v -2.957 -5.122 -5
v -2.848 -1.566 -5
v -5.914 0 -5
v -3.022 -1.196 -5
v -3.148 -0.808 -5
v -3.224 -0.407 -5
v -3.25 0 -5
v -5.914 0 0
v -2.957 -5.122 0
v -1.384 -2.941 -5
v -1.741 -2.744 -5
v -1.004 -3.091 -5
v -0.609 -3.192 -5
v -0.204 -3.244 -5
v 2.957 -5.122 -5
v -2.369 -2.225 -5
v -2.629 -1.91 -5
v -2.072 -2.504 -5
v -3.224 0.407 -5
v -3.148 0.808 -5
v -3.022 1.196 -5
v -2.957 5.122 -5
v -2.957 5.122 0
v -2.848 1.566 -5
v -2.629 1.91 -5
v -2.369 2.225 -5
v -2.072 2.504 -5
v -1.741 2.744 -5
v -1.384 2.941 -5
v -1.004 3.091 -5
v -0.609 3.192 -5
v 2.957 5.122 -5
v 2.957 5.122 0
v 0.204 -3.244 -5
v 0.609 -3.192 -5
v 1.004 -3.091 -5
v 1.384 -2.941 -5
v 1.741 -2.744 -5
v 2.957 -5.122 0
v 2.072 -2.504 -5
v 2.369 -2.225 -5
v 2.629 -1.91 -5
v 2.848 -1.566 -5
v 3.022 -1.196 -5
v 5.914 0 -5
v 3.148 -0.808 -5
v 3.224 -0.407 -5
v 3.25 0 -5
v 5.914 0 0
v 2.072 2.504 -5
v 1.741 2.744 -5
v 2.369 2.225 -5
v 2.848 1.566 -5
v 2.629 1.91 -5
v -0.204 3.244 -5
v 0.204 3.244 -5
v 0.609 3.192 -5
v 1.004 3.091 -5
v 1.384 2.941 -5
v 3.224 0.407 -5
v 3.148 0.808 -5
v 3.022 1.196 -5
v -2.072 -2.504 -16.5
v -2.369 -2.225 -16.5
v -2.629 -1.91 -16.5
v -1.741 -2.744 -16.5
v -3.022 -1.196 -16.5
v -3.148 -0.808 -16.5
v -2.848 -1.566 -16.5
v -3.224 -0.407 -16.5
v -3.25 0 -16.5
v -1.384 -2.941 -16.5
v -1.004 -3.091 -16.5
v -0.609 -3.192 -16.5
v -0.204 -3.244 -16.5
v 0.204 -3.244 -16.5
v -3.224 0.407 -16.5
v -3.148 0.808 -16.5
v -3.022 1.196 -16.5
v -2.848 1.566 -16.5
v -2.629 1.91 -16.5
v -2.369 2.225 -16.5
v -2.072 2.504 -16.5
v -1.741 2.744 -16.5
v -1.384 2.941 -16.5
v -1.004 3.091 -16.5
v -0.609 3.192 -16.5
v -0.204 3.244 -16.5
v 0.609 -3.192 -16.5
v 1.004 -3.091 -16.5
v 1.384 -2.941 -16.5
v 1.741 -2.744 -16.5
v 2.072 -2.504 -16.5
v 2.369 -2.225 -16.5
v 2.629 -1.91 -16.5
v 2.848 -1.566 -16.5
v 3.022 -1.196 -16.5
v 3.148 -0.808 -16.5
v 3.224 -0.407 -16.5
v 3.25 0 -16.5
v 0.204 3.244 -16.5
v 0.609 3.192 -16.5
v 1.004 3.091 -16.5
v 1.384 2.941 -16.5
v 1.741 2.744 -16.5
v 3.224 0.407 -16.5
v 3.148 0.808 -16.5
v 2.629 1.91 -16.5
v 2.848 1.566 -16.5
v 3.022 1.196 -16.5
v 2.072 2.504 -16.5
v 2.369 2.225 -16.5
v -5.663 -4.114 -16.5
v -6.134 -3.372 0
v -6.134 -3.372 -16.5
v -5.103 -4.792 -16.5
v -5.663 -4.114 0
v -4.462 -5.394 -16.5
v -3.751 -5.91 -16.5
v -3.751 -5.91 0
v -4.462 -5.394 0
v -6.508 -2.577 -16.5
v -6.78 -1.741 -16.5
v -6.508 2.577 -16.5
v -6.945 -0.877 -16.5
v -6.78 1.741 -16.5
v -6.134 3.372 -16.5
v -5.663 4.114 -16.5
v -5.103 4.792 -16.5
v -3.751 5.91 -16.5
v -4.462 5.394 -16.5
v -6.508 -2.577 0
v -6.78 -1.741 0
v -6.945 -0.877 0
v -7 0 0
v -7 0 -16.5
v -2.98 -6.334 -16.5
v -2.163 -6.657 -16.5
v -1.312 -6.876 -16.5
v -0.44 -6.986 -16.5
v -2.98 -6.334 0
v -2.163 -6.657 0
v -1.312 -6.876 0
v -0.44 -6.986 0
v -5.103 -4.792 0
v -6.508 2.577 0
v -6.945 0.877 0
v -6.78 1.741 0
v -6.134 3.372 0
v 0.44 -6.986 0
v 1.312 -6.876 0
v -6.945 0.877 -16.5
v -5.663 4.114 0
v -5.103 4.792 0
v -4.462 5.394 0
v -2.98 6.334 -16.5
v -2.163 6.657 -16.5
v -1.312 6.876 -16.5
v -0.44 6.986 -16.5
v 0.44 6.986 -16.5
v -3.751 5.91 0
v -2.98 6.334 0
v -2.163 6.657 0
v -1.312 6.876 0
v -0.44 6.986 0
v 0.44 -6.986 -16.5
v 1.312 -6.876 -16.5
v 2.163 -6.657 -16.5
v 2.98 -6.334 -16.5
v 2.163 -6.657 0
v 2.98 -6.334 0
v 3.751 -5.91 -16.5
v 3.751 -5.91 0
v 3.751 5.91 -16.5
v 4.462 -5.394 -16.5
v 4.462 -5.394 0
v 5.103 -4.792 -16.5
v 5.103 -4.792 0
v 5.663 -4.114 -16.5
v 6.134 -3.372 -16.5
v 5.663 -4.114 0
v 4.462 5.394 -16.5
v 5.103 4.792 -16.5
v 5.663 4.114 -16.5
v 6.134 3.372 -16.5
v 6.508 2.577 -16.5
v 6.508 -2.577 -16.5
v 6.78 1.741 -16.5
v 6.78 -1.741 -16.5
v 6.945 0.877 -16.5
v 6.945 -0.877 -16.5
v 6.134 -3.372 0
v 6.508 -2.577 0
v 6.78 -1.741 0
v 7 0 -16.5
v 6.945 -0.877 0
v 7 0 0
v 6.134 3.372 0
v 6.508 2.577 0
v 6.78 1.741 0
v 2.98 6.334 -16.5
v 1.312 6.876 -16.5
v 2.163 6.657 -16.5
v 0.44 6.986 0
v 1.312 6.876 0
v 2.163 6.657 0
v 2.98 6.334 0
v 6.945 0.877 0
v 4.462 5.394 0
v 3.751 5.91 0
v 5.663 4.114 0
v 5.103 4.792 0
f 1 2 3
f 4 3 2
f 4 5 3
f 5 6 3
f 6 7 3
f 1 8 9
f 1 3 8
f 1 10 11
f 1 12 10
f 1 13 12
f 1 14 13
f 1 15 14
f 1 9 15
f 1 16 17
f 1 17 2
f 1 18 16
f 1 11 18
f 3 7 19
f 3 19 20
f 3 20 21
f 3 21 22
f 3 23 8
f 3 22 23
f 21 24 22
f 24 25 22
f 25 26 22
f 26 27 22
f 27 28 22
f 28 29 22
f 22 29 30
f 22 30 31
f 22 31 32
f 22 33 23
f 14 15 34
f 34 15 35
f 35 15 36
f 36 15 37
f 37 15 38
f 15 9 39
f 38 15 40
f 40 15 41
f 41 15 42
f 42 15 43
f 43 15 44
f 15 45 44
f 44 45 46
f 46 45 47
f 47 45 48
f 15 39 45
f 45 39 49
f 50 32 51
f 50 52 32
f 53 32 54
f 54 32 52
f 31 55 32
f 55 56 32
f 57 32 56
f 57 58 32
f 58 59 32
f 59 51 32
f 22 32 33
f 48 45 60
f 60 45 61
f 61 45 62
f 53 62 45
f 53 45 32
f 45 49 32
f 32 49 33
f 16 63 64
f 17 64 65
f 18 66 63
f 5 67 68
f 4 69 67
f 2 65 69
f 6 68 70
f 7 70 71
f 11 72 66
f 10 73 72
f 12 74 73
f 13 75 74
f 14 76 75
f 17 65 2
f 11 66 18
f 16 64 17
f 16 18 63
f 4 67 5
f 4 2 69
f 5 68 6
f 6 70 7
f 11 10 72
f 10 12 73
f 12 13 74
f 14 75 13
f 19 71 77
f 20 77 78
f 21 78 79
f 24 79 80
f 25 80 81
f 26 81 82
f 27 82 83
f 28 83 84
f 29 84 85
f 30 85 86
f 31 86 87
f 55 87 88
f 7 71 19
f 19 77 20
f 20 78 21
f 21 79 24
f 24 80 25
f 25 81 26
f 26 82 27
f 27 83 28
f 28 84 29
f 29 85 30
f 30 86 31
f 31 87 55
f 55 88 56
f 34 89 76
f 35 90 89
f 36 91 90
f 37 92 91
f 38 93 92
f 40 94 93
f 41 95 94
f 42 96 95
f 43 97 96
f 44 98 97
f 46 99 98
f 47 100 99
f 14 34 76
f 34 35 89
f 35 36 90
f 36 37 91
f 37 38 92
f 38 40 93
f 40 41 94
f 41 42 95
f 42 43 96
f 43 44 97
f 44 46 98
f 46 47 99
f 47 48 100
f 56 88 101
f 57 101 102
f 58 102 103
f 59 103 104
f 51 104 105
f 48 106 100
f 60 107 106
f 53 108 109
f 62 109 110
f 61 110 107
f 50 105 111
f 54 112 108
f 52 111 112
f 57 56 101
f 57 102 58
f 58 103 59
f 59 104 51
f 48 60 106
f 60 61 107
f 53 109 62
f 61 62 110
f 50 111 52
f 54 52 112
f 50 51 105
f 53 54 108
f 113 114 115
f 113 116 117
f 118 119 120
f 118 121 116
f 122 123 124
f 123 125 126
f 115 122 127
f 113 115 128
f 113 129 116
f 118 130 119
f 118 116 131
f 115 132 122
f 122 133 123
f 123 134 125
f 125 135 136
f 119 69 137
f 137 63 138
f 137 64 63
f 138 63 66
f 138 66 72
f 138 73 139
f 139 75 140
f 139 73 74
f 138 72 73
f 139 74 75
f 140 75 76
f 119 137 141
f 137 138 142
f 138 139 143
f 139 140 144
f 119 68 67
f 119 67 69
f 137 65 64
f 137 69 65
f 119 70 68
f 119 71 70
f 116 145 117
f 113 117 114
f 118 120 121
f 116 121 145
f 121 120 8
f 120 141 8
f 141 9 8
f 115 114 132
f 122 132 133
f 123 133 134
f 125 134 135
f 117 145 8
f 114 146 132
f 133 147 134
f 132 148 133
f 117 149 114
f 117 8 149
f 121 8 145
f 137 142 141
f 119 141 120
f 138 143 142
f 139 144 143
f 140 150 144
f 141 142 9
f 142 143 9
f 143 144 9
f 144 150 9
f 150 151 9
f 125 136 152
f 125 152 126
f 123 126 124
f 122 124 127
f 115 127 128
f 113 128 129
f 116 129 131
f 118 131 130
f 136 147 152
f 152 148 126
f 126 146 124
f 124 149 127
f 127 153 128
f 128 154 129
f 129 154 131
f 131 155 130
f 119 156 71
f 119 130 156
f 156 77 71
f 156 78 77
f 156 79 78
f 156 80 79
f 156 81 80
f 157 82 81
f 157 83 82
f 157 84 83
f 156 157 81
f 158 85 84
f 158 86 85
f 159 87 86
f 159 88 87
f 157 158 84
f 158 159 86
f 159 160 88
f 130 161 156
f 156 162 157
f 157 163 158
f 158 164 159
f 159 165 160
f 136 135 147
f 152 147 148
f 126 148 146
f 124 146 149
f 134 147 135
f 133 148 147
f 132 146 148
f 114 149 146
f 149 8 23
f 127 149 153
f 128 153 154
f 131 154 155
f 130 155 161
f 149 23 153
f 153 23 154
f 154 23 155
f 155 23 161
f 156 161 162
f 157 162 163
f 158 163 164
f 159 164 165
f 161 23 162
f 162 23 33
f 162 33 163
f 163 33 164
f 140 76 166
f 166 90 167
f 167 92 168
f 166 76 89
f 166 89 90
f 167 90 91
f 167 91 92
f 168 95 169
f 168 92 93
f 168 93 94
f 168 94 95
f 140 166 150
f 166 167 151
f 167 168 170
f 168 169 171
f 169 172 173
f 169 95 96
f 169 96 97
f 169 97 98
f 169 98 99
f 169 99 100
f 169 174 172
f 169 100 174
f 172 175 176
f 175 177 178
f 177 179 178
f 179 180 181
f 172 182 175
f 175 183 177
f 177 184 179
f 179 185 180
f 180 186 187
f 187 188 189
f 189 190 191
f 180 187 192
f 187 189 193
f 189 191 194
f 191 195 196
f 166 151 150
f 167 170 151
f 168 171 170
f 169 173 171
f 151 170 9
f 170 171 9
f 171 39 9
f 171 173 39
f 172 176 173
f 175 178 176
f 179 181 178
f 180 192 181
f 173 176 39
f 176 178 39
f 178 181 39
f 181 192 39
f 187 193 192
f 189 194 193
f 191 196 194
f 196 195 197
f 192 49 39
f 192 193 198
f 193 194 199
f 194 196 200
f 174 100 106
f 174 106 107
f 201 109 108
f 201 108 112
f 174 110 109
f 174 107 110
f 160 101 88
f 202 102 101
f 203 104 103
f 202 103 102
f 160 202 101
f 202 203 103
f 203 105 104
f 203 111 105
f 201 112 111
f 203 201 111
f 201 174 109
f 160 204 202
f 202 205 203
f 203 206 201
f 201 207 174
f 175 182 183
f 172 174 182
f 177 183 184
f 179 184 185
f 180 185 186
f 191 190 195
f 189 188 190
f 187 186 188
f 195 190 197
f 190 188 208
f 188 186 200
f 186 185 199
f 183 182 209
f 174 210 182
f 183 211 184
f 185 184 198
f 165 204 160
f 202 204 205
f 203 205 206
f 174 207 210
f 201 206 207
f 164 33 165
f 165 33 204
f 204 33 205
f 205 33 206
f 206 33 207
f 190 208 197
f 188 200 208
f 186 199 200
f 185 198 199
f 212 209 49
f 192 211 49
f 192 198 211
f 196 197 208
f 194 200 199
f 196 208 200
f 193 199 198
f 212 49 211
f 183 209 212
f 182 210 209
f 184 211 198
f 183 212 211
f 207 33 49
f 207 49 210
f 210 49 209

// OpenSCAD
$fn = 50;

difference() {
	union() {
		translate(v = [0, 0, -16.5]) {
			cylinder(h = 16.5, r = 7.0);
		}
	}
	union() {
		translate(v = [0, 0, 0]) {
			rotate(a = [0, 0, 0]) {
				difference() {
					union() {
						translate(v = [0, 0, -5]) {
							linear_extrude(height = 5) {
								polygon(points = [[5.914249999999999, 0.0], [2.957125, 5.1218907443321156], [-2.9571249999999982, 5.1218907443321156], [-5.914249999999999, 7.242867331857232e-16], [-2.9571250000000022, -5.121890744332115], [2.9571249999999956, -5.121890744332118]]);
							}
						}
					}
					union();
				}
			}
		}
		#translate(v = [0, 0, -100.0]) {
			cylinder(h = 200, r = 3.25);
		}
	}
}
